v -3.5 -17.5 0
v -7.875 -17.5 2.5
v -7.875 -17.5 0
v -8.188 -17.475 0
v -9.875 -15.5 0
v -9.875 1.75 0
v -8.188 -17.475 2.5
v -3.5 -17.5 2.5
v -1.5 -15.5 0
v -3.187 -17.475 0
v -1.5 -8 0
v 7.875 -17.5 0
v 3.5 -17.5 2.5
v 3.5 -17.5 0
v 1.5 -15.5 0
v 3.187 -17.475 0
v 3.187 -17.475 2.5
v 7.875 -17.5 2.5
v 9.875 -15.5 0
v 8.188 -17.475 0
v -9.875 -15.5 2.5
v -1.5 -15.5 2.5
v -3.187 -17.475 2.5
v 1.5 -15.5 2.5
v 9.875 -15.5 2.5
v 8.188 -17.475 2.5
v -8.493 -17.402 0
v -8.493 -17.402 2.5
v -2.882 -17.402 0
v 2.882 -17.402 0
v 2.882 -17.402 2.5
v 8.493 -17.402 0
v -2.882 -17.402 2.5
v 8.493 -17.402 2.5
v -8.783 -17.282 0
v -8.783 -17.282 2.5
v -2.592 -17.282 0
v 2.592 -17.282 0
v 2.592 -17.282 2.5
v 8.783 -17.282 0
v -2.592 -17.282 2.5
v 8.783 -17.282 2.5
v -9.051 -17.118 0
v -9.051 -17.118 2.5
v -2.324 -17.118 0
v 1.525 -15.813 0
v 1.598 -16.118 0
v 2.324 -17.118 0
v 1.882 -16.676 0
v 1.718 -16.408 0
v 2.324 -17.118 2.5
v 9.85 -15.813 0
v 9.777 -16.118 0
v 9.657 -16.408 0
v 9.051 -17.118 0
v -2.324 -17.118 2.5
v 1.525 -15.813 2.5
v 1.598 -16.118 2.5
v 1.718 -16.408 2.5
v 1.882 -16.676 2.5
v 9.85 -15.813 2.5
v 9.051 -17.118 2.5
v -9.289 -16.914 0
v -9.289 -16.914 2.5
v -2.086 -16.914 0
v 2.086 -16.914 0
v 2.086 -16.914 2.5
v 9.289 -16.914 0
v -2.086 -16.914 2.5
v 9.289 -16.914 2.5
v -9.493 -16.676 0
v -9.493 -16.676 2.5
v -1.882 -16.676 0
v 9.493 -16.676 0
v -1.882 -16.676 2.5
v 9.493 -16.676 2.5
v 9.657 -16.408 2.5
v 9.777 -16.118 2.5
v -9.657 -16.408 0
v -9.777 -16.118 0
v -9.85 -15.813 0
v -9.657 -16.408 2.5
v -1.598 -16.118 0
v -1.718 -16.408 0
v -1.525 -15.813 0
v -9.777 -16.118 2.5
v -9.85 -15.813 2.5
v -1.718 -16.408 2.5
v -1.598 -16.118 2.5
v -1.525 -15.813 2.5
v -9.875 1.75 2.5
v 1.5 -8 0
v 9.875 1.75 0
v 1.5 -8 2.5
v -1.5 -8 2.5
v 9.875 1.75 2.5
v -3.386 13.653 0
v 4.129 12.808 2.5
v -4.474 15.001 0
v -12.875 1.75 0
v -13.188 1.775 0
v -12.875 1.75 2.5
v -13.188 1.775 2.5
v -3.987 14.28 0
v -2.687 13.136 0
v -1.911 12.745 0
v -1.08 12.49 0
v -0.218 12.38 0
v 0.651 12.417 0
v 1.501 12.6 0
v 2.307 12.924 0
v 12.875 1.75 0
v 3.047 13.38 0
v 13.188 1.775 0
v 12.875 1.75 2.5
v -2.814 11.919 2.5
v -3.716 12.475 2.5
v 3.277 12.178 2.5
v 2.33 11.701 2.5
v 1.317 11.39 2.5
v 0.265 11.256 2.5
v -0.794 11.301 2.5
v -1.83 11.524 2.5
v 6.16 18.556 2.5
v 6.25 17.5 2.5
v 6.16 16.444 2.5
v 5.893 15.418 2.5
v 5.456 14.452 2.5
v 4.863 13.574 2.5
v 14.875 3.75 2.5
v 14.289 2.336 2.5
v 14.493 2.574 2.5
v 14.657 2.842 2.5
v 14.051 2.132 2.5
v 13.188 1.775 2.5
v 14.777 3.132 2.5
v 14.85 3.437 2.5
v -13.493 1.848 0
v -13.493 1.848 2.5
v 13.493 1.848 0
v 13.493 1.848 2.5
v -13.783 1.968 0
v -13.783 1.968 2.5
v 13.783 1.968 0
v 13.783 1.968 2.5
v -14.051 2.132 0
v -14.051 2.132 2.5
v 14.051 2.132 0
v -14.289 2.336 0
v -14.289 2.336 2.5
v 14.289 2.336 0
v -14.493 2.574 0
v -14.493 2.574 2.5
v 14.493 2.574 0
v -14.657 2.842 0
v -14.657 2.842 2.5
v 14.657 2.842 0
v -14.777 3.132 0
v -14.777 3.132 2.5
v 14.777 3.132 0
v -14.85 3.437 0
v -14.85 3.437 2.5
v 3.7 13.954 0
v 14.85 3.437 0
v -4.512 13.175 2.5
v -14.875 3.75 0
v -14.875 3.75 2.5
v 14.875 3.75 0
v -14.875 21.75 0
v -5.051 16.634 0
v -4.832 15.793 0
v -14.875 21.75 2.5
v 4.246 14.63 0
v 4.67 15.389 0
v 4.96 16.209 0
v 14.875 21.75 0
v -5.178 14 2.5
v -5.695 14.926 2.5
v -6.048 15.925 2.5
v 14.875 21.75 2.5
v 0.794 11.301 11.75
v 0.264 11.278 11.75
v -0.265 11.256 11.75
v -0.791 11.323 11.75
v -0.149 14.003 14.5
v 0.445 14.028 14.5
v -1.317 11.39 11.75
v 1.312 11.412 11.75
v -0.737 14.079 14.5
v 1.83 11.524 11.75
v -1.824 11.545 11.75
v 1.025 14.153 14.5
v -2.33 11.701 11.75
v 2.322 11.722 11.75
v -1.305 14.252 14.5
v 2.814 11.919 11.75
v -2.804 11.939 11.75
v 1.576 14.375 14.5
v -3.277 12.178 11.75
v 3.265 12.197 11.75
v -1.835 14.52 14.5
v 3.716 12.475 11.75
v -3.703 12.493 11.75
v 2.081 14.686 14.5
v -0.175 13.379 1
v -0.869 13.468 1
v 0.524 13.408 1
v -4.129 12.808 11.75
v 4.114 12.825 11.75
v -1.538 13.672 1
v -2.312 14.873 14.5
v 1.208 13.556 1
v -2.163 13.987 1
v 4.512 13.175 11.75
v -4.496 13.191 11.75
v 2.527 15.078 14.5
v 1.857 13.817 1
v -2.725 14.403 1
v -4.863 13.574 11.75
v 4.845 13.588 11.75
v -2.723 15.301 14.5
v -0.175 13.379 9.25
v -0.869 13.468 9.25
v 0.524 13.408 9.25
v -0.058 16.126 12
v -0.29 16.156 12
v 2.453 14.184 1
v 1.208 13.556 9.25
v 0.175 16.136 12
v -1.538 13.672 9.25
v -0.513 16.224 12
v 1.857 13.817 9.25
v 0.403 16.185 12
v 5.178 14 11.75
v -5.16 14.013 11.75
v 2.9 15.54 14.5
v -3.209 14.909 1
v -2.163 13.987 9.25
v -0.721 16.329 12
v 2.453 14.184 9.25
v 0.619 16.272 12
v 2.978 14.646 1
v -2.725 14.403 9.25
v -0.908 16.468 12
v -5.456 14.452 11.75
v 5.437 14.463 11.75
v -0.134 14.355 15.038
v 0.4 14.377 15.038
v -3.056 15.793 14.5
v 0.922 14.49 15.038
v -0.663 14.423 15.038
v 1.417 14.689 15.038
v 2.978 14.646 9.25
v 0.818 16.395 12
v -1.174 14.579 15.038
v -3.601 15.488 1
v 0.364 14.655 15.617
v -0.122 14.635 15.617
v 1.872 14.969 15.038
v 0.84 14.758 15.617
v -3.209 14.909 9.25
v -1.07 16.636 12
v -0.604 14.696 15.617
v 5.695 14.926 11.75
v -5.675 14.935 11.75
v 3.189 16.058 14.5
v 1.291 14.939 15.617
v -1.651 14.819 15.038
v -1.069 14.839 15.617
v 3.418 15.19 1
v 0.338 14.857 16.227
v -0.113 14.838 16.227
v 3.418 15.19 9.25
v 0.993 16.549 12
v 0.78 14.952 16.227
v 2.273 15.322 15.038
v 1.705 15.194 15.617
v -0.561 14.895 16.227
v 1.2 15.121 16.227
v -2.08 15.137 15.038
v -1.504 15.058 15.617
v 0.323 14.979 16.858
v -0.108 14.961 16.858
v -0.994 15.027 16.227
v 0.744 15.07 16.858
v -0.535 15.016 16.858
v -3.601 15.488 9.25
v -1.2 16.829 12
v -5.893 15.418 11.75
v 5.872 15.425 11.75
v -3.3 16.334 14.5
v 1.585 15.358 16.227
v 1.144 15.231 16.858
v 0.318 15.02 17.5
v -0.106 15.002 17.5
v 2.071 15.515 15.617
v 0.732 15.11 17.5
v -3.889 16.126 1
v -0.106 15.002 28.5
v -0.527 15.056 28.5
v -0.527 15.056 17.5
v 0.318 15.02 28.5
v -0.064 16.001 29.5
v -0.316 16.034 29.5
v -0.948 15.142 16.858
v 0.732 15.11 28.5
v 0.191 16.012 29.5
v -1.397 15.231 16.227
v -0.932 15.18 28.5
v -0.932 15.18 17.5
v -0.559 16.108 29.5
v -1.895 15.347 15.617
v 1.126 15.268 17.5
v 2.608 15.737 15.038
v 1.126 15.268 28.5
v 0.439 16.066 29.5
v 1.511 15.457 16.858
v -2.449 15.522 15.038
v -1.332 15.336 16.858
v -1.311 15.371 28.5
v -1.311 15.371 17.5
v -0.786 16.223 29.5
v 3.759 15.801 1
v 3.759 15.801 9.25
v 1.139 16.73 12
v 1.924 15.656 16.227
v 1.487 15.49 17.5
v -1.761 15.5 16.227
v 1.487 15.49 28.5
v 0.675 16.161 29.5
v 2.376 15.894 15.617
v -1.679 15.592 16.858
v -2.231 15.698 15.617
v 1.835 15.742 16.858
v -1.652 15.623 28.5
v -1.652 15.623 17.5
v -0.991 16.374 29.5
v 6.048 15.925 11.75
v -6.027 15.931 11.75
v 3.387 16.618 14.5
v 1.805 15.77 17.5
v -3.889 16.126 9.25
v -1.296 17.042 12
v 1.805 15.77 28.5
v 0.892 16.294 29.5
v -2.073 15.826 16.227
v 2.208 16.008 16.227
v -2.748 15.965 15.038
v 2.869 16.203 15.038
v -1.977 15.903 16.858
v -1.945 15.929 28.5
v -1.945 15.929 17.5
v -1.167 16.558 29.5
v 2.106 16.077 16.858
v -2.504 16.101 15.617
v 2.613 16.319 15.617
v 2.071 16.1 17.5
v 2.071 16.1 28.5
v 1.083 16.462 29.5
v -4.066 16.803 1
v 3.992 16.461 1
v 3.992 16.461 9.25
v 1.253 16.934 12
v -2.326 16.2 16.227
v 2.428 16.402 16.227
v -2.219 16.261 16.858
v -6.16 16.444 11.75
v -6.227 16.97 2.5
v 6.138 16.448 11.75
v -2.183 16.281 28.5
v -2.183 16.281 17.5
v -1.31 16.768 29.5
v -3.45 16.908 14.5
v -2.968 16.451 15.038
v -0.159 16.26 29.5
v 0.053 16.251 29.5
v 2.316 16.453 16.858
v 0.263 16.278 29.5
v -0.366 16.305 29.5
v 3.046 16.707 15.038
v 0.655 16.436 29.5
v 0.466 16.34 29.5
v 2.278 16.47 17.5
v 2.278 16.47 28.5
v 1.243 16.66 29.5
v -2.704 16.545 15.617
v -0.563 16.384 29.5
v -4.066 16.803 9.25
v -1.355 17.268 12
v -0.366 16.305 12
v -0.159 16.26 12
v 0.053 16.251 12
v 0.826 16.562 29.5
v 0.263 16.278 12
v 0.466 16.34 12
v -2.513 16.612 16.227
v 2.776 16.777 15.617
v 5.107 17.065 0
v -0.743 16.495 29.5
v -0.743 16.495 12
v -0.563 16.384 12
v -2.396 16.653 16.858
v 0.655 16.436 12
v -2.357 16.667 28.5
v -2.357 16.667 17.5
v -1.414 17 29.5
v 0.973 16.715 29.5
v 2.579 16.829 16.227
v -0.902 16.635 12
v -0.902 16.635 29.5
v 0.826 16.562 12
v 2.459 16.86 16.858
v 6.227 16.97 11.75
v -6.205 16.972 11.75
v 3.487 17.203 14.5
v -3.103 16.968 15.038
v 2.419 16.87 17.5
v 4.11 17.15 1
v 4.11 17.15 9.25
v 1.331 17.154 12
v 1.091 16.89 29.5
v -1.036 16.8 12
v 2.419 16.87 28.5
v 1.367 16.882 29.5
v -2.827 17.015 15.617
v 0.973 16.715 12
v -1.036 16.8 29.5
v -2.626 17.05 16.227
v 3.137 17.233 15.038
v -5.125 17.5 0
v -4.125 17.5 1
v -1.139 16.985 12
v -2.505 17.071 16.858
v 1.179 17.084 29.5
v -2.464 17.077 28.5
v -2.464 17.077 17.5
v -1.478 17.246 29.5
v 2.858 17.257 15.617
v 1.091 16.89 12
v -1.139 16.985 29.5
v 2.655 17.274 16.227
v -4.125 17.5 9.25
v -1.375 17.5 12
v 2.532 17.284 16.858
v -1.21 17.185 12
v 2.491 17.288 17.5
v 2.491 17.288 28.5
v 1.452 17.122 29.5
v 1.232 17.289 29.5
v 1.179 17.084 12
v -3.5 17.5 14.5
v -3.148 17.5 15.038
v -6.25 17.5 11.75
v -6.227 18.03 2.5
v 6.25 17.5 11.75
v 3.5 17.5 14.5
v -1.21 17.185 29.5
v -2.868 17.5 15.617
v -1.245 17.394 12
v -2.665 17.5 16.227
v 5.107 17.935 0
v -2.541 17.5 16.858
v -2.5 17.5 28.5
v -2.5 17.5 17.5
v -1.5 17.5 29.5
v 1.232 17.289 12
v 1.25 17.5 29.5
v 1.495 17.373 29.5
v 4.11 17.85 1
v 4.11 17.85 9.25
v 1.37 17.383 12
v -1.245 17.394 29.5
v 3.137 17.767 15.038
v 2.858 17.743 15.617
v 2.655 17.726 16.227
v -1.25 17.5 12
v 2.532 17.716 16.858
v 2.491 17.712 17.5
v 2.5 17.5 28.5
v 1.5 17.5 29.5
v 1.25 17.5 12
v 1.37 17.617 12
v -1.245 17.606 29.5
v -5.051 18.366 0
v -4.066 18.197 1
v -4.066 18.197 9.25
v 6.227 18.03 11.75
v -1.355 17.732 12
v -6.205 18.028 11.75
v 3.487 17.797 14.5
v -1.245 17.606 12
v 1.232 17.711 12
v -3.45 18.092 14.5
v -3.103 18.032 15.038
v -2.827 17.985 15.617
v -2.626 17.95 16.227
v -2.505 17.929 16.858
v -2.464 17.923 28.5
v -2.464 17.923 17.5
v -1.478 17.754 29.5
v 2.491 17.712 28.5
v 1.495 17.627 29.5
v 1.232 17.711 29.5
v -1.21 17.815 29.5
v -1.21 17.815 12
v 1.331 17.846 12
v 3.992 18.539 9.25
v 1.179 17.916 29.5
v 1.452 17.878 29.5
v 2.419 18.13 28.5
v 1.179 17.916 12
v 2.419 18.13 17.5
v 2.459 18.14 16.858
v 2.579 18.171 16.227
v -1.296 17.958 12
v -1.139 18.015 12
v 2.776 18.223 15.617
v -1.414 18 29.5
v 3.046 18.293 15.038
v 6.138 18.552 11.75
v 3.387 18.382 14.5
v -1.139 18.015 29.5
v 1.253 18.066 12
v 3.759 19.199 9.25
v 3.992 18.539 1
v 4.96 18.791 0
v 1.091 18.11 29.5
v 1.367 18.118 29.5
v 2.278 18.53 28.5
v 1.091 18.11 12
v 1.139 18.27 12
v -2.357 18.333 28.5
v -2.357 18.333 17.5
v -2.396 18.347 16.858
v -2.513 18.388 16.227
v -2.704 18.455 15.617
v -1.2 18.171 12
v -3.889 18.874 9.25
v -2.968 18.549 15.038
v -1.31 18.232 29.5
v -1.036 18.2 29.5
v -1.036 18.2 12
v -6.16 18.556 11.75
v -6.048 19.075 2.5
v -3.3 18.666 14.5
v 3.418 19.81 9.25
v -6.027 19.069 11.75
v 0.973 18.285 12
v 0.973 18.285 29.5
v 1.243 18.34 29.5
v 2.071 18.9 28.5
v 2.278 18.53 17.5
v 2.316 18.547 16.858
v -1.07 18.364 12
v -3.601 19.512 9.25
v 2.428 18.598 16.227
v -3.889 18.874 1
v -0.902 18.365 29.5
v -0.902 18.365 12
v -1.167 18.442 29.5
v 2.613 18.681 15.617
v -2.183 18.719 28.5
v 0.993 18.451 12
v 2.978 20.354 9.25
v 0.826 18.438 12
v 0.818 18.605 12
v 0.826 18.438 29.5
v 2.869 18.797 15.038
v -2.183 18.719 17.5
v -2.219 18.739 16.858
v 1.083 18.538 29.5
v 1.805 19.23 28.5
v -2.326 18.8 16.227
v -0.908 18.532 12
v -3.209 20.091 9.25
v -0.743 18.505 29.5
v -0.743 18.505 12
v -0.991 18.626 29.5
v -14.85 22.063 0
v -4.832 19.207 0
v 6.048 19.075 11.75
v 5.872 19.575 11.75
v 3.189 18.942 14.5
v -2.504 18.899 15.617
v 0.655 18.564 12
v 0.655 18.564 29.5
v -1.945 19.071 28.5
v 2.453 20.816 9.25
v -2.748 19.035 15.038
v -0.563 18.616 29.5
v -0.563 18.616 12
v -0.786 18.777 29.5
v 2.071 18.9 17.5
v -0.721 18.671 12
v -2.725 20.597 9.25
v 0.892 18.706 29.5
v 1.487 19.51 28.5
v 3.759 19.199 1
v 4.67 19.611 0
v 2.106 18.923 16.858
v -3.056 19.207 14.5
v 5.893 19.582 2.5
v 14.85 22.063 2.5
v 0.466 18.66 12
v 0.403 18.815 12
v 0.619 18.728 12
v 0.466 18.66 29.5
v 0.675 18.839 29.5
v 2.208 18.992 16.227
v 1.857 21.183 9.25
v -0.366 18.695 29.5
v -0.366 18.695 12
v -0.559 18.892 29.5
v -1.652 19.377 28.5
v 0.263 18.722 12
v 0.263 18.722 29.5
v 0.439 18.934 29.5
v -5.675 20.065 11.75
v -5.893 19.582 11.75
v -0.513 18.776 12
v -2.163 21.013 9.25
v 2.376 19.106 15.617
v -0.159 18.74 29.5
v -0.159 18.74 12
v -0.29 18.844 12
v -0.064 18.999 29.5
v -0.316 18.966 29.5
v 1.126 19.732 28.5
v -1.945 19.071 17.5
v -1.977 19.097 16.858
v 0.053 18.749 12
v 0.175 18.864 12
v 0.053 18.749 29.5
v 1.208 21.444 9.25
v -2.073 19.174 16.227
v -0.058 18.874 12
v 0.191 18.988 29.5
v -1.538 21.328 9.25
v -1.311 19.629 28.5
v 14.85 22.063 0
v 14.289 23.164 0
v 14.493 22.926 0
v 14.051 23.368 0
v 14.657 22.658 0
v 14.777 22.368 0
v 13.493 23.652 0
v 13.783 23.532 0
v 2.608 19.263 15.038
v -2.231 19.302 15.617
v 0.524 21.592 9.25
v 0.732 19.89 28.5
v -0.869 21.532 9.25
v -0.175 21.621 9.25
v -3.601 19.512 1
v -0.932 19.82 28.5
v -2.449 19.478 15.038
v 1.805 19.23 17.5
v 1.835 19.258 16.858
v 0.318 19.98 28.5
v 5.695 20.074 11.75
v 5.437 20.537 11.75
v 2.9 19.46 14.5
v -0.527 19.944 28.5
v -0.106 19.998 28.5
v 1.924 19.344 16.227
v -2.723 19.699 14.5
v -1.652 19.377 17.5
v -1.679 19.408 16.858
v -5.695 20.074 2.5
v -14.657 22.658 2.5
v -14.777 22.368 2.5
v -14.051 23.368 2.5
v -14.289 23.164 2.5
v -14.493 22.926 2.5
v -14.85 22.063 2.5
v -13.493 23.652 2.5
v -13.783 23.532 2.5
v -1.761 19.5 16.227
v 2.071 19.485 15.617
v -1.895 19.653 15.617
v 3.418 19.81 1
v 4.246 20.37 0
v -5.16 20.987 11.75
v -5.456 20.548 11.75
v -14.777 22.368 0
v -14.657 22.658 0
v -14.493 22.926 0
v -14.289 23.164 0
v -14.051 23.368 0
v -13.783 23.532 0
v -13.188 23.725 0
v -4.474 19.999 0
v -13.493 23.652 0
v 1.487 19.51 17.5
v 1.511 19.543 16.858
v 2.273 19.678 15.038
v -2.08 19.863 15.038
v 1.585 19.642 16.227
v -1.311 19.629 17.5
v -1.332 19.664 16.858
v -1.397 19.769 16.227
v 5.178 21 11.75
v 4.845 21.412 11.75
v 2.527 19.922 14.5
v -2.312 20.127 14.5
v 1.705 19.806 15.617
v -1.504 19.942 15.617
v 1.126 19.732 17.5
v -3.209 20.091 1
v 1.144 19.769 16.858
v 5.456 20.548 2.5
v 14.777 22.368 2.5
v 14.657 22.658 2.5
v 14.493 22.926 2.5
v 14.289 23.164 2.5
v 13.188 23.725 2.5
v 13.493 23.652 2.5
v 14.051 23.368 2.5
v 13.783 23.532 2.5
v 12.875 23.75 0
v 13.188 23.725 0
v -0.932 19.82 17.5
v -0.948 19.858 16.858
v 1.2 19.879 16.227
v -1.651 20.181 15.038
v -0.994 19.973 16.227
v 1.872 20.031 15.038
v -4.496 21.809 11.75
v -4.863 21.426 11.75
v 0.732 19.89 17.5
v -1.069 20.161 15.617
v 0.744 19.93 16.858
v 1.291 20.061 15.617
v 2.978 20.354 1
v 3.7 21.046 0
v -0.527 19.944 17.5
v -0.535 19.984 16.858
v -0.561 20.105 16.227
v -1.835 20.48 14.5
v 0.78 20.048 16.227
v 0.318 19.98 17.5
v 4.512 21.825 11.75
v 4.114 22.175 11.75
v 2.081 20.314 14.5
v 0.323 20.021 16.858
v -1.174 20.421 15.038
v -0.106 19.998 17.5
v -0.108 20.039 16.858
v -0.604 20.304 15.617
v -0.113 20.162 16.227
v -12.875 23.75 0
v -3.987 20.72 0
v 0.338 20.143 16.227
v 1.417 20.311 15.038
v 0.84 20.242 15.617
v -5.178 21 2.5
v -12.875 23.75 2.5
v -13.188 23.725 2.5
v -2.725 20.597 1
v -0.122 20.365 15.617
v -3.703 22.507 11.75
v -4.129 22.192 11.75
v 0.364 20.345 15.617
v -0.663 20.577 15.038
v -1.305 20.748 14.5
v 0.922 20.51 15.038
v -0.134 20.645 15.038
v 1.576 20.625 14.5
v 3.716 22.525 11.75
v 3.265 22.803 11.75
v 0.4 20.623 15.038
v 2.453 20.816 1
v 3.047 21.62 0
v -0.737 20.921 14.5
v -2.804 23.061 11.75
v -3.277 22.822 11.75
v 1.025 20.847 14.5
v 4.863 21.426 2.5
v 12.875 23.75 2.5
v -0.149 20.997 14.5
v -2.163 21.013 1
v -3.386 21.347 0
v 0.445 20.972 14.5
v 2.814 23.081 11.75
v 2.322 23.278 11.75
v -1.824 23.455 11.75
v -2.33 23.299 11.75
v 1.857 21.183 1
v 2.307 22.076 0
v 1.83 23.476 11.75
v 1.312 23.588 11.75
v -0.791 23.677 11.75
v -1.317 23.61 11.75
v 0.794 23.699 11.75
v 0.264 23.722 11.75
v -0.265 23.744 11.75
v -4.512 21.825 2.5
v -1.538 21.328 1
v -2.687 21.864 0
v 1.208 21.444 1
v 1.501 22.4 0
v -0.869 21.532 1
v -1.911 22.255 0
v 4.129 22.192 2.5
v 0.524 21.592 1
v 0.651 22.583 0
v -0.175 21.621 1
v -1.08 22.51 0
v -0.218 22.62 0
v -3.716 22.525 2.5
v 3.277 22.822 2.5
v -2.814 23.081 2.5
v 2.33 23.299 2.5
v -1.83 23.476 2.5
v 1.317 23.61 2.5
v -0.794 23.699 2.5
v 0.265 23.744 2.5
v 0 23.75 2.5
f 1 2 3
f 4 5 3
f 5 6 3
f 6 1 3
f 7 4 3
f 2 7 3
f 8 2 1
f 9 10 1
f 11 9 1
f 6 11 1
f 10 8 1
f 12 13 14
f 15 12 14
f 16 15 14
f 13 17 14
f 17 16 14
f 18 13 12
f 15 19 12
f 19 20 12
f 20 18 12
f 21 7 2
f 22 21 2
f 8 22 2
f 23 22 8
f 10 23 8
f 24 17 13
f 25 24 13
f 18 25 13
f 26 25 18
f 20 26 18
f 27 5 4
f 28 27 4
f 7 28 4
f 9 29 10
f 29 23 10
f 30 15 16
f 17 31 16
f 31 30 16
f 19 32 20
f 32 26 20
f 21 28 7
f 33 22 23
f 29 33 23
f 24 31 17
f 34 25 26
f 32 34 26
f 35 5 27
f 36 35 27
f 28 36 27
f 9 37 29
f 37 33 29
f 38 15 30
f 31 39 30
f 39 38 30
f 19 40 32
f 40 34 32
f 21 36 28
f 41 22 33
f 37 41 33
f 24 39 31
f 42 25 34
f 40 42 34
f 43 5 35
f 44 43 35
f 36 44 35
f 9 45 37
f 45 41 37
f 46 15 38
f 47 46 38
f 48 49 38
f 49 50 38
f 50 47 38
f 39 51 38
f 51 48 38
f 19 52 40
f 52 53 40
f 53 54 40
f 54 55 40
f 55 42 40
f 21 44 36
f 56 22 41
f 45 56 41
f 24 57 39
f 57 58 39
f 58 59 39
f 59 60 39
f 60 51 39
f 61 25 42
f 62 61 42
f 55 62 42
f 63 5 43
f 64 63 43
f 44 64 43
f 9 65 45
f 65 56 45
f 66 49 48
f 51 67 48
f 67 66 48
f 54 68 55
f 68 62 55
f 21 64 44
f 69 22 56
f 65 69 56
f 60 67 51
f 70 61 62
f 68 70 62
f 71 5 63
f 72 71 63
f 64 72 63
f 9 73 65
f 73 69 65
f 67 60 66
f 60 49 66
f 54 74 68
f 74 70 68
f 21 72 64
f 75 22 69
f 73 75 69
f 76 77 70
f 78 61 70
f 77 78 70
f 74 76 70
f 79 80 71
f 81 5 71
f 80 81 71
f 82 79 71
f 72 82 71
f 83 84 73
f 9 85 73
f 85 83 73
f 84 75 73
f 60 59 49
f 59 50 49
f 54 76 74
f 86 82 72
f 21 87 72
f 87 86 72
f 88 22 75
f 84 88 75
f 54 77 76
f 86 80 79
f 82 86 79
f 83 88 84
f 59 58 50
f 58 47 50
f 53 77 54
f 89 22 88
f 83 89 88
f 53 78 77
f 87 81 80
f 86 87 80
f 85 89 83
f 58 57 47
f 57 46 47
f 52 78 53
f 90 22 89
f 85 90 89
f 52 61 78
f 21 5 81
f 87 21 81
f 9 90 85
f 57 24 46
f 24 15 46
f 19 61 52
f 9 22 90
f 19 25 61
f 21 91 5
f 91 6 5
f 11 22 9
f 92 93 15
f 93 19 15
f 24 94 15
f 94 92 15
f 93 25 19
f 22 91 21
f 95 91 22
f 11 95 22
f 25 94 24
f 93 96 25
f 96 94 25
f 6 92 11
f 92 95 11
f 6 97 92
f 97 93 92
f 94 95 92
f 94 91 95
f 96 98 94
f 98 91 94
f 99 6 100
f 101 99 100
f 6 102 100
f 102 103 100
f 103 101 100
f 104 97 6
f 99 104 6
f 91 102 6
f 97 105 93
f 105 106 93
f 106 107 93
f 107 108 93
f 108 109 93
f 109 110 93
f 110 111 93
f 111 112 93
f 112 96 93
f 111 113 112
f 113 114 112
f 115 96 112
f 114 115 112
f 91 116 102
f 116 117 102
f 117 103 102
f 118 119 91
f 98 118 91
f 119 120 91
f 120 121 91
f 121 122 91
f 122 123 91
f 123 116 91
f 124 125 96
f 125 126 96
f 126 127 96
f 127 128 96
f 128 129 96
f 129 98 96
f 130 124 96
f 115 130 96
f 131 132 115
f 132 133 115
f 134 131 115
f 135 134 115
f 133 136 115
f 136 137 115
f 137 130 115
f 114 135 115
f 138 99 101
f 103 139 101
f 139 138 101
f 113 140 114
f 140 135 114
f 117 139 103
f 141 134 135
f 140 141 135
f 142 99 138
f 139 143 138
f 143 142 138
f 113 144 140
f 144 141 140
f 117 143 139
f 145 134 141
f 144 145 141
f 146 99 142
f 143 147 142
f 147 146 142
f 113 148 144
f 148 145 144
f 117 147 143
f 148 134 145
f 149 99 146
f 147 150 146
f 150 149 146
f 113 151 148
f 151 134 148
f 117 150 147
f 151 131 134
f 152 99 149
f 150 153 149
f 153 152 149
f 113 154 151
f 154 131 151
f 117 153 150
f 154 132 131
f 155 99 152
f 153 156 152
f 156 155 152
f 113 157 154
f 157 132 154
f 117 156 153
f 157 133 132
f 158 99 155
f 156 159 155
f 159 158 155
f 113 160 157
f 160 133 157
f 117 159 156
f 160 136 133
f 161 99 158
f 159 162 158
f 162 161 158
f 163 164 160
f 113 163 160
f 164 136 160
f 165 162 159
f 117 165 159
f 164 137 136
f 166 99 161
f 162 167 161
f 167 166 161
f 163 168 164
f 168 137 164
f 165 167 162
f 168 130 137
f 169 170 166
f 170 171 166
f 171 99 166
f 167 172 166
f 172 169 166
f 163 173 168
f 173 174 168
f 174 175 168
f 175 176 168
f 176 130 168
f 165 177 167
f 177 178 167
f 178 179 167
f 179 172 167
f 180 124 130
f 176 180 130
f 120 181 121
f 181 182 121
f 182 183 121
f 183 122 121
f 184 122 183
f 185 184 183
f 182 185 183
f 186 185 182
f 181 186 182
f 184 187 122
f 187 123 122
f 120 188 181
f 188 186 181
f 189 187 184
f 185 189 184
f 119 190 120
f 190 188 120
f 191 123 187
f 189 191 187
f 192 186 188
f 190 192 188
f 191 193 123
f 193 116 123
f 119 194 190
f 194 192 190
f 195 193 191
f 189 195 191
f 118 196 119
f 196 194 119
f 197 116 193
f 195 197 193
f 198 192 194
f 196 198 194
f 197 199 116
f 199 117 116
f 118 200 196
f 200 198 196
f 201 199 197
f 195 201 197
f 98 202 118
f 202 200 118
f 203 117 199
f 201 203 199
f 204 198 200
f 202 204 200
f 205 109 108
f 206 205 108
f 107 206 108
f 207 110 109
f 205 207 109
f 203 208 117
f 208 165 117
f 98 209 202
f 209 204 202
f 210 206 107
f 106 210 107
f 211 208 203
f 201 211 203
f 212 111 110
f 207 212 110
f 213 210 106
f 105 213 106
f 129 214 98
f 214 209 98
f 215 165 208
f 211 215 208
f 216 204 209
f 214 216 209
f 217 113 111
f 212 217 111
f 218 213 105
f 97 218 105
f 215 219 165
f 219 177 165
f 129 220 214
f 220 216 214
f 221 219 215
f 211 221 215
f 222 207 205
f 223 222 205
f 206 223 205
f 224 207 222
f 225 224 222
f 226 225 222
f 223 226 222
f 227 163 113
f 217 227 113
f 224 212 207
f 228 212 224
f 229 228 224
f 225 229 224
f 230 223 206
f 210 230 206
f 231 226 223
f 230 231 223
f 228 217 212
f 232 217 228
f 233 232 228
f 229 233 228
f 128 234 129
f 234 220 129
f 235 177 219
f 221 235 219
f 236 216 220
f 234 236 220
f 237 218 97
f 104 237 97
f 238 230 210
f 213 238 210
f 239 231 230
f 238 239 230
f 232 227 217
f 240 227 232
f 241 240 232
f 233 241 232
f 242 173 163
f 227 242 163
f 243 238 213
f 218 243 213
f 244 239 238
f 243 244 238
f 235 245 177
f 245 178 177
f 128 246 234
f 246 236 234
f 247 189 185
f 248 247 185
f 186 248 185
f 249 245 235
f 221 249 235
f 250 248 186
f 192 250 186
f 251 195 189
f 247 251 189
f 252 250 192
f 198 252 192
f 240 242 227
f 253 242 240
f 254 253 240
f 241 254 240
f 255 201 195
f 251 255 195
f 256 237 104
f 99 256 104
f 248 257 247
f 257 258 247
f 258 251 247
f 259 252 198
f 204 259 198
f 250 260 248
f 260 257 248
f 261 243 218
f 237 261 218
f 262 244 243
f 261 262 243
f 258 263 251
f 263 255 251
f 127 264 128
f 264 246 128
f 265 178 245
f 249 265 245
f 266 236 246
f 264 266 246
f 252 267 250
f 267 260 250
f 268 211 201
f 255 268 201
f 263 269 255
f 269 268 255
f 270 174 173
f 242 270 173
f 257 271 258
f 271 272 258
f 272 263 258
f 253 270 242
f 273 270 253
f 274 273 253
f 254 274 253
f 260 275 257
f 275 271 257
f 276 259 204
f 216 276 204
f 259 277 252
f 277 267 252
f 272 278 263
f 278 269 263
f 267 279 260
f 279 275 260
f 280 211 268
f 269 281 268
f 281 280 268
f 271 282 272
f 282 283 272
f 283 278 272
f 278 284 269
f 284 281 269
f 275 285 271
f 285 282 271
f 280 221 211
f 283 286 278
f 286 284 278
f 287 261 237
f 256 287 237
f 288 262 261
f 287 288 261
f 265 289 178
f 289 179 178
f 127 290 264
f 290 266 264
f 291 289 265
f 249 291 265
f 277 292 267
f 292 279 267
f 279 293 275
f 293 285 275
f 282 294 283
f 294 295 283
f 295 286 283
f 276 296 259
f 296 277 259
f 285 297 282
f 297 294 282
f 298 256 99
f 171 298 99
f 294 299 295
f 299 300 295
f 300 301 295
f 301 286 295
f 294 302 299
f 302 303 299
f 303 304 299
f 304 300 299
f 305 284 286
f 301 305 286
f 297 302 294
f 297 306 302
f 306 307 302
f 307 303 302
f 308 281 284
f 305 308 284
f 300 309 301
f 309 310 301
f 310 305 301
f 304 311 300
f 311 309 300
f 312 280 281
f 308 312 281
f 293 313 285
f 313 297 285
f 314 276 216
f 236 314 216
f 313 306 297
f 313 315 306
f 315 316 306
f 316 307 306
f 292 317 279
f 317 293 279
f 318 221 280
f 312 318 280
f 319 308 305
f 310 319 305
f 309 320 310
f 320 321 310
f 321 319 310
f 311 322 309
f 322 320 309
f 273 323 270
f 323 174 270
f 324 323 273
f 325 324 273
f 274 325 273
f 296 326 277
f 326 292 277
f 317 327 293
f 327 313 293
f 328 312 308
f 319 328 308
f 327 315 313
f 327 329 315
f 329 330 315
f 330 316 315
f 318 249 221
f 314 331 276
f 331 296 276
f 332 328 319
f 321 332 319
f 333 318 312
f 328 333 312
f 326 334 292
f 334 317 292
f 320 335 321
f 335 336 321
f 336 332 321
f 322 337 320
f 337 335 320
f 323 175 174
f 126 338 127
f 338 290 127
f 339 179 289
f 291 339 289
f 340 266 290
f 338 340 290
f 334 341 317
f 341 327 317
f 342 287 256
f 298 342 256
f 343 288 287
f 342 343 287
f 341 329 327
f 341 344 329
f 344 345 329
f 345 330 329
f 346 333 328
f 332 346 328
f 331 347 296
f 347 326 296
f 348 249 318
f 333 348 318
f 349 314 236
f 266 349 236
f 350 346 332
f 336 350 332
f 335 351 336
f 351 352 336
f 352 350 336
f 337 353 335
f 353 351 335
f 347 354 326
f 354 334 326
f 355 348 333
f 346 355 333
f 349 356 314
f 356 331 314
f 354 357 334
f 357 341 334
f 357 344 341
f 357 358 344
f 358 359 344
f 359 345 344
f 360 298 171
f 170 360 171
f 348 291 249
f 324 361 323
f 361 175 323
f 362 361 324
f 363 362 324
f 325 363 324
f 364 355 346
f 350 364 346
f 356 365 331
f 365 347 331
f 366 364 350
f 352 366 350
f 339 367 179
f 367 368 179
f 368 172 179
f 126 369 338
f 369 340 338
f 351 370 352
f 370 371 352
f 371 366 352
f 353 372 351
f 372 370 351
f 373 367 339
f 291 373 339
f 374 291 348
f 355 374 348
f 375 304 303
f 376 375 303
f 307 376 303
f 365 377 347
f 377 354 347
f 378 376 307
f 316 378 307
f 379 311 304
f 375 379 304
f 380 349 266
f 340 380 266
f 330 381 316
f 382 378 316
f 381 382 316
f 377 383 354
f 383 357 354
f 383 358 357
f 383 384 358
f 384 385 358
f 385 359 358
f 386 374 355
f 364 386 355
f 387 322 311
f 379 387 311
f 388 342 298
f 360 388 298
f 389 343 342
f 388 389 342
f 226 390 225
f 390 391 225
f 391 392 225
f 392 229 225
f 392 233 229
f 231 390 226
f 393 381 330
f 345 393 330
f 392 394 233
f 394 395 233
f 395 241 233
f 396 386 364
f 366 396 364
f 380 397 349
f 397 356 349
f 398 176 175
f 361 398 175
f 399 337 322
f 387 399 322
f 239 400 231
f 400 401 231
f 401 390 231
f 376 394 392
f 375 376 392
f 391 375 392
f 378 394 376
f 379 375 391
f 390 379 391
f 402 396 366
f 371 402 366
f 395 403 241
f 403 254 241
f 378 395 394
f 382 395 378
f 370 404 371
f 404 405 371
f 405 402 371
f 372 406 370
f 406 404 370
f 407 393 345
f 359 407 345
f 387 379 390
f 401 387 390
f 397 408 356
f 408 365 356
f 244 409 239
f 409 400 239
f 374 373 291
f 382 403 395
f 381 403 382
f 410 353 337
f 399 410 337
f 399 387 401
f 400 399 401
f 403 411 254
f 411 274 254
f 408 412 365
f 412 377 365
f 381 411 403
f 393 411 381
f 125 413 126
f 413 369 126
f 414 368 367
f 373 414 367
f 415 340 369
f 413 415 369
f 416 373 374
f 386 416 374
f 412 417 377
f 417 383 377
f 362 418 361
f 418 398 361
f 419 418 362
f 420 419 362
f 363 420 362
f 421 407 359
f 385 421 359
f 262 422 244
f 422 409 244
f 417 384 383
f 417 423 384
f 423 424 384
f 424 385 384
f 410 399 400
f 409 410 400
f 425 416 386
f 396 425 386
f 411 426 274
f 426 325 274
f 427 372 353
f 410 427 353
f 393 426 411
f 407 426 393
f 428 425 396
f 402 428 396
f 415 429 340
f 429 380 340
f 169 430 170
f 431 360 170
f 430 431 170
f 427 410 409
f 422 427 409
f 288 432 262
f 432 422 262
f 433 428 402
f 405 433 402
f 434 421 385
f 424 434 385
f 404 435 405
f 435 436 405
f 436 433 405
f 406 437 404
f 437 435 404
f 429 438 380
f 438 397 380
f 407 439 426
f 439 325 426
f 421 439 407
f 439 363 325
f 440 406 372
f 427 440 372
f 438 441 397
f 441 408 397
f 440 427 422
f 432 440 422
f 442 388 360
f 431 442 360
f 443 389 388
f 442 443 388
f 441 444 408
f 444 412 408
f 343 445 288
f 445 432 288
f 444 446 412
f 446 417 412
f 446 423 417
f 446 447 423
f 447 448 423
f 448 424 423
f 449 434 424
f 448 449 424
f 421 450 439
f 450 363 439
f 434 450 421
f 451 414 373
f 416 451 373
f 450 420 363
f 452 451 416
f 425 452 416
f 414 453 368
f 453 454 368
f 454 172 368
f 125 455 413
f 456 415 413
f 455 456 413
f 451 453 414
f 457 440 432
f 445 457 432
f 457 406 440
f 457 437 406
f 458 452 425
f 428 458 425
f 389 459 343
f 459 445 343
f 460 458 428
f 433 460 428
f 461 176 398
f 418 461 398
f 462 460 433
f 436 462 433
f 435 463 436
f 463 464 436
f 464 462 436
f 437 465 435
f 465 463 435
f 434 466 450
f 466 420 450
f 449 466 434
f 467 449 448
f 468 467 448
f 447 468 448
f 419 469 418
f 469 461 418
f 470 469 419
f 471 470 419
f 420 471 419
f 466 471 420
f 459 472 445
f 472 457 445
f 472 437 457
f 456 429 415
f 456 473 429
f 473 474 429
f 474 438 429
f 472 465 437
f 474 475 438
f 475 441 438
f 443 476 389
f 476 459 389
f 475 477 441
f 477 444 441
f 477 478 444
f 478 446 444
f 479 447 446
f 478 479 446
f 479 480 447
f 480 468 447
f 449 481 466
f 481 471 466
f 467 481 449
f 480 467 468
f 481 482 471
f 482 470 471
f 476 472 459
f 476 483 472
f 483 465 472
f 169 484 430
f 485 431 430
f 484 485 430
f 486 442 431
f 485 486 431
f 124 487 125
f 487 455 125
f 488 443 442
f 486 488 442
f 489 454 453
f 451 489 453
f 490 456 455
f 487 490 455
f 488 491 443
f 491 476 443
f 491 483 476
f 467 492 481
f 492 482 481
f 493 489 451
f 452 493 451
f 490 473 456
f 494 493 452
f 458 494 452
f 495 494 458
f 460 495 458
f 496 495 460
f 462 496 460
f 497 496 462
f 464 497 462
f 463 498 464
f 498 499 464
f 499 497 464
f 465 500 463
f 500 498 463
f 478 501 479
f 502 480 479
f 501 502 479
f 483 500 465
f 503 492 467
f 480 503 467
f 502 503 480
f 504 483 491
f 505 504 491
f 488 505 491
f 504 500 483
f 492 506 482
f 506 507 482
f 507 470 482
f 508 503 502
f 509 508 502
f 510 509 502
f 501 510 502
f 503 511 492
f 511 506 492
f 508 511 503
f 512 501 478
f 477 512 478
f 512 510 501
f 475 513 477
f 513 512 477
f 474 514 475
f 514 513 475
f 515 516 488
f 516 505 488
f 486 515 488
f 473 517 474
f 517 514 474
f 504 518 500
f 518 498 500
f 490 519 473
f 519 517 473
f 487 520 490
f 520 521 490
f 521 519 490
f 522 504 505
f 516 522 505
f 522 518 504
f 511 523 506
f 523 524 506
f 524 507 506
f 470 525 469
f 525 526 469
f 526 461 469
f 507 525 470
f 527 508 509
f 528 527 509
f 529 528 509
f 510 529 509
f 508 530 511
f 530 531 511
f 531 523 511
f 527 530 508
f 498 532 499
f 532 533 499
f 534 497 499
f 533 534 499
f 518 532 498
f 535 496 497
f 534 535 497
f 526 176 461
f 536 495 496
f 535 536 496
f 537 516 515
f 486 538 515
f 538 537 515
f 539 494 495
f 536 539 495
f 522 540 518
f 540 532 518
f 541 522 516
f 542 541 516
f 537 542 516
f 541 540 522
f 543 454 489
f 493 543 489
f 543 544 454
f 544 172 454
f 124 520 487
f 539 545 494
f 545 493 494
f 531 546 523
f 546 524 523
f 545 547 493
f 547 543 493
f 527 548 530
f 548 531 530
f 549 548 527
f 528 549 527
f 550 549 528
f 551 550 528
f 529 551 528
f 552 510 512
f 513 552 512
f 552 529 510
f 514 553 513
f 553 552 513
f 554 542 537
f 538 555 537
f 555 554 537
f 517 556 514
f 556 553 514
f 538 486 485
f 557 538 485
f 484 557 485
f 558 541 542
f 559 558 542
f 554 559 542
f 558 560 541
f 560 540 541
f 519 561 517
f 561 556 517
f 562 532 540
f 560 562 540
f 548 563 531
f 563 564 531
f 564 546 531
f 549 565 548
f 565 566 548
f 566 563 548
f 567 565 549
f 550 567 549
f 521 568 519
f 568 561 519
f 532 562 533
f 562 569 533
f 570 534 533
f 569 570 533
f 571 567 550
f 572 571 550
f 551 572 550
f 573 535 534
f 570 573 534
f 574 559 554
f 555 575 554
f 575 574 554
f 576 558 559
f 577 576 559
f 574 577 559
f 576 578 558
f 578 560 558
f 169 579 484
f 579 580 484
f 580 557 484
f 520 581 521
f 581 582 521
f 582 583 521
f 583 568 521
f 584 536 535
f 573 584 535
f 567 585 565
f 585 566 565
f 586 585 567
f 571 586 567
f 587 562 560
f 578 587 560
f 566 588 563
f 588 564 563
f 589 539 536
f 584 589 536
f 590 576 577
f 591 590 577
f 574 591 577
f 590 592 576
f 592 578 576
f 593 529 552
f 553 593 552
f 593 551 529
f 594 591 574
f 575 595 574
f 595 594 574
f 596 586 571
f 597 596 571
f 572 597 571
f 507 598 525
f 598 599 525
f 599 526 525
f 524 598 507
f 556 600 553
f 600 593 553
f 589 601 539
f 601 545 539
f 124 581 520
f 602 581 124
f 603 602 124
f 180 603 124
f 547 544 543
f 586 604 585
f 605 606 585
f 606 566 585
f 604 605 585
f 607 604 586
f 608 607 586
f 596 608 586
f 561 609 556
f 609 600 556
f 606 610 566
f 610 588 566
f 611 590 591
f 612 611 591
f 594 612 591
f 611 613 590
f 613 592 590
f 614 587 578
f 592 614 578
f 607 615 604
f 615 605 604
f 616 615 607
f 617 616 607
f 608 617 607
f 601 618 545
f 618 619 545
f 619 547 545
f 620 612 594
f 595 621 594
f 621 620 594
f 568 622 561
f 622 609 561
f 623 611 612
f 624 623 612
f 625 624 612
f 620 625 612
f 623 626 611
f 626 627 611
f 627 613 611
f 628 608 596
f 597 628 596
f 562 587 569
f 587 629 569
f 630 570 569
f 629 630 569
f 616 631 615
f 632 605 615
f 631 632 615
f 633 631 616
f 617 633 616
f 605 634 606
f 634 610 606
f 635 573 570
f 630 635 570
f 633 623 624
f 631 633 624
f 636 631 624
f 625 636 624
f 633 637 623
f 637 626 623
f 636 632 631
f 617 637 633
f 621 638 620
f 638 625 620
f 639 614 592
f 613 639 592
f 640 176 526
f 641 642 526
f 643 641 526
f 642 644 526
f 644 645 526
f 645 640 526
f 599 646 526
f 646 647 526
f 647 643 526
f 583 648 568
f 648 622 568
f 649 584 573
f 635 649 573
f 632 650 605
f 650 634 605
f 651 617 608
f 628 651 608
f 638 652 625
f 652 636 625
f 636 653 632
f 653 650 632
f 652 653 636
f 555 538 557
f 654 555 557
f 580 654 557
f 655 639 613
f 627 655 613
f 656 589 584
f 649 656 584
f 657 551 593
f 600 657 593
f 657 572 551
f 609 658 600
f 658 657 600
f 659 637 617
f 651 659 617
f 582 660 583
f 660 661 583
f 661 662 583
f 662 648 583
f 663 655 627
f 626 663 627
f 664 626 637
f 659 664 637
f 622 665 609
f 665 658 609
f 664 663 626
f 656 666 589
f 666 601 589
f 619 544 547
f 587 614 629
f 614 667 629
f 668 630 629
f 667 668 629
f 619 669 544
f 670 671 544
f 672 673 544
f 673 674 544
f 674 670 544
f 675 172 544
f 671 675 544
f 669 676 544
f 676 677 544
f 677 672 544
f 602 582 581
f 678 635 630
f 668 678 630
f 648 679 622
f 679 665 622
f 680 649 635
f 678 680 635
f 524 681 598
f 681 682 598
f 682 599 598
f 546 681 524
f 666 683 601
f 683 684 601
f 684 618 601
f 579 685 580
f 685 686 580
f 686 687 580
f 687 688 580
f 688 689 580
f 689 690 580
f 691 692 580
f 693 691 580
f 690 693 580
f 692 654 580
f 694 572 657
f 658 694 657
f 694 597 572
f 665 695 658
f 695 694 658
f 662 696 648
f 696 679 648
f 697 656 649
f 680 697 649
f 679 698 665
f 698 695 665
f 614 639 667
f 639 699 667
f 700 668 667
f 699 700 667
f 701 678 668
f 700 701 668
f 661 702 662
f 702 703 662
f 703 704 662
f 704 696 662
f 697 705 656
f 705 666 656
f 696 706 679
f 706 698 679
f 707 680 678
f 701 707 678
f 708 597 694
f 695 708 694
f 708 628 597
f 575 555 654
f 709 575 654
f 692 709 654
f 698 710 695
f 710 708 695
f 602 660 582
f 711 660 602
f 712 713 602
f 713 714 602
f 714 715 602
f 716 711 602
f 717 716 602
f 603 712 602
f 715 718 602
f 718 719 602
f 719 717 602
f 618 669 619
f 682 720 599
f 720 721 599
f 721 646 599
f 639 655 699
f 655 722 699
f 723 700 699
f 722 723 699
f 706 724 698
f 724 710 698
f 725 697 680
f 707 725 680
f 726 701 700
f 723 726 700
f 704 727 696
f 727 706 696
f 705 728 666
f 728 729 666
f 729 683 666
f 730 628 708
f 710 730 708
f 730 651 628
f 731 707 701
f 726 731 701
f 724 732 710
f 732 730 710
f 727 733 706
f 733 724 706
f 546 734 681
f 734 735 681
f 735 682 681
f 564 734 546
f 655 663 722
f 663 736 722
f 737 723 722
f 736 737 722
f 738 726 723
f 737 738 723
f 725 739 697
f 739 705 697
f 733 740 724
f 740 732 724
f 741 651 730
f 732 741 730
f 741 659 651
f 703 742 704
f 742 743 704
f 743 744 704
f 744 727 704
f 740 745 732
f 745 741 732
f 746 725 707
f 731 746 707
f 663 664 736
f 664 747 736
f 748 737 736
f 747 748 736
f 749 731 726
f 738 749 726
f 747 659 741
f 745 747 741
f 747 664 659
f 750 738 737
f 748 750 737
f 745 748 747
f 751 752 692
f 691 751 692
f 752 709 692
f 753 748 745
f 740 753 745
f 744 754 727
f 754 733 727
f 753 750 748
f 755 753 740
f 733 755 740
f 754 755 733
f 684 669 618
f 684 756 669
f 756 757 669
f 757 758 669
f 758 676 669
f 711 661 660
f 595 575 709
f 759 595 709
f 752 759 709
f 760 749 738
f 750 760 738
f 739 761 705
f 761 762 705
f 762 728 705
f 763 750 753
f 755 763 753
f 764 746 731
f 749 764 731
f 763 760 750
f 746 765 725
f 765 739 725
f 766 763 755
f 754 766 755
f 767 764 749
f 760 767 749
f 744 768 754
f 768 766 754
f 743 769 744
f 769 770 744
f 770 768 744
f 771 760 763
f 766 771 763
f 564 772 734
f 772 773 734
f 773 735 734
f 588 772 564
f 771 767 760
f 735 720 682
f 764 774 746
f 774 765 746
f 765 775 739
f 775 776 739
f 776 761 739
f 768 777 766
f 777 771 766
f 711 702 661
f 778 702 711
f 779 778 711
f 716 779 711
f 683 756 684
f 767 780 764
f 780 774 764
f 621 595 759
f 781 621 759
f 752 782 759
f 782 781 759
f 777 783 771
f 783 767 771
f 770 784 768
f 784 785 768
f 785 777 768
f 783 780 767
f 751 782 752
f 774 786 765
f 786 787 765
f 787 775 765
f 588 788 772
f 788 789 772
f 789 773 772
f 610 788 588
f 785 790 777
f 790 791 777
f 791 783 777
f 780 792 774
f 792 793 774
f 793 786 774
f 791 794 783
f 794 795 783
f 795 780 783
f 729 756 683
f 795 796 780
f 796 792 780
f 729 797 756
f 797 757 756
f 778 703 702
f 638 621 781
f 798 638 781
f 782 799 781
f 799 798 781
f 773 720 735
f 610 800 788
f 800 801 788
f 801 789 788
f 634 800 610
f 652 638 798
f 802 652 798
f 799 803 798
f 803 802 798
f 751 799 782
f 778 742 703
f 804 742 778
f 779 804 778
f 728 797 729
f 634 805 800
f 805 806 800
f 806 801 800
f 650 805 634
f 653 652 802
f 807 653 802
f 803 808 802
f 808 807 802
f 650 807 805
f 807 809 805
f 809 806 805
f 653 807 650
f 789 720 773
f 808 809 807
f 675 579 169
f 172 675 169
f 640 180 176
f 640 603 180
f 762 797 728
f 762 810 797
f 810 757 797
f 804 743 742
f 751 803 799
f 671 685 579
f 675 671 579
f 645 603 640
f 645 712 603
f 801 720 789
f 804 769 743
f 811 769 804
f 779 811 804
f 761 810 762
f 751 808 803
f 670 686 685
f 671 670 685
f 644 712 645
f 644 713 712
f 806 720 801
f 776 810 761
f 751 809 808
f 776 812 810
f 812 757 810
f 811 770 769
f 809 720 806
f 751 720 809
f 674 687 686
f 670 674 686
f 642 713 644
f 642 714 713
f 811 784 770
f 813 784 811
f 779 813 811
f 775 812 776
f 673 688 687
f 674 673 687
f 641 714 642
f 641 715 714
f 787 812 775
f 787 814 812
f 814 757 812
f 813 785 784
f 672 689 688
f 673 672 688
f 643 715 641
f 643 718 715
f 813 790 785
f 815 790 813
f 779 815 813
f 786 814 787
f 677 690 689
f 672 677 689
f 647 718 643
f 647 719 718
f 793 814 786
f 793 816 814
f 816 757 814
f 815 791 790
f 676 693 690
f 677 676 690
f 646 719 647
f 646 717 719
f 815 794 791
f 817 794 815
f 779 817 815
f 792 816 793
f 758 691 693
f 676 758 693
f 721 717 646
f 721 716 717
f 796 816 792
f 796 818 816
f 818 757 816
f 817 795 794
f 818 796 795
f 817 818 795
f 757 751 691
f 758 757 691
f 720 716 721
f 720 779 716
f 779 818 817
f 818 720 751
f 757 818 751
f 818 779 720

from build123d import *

# Parameters (mm, degrees)
CROQUIS1_W                          = 19.75
CROQUIS1_H                          = 35
SALIENTE_EXTRUIR1_DEPTH             = 2.5
CROQUIS2_W                          = 3
CROQUIS2_H                          = 9.5
CORTAR_EXTRUIR1_DEPTH               = 21.24884256
CROQUIS3_W                          = 29.75
CROQUIS3_H                          = 15.75
SALIENTE_EXTRUIR2_DEPTH             = 2.5
CROQUIS7_R                          = 6.25
SALIENTE_EXTRUIR4_DEPTH             = 12
SALIENTE_EXTRUIR4_DIRECTION_2_REACH = 25.103
CROQUIS4_R                          = 2.5
SALIENTE_EXTRUIR3_DEPTH             = 15
CROQUIS5_R                          = 1.25
CORTAR_EXTRUIR2_DEPTH               = 41.688796062
CROQUIS10_R                         = 4.125
CORTAR_EXTRUIR3_DEPTH               = 12
CHAFL_N1_SIZE                       = 1
REDONDEO1_R                         = 2
CHAFL_N2_SIZE                       = 2.75
REDONDEO2_R                         = 5
SALIENTE_EXTRUIR5_DEPTH             = 2.5


with BuildPart() as part:
    # Croquis1 → Saliente-Extruir1 (new body)
    with BuildSketch(Plane.XY):
        Rectangle(CROQUIS1_W, CROQUIS1_H)
    extrude(amount=SALIENTE_EXTRUIR1_DEPTH)

    # Croquis2 → Cortar-Extruir1 (cut, through all)
    with BuildSketch(Plane.XY.offset(2.5)):
        with Locations((0, -12.75)):
            Rectangle(CROQUIS2_W, CROQUIS2_H)
    extrude(amount=-CORTAR_EXTRUIR1_DEPTH, mode=Mode.SUBTRACT)

    # Croquis3 → Saliente-Extruir2 (add, through all)
    with BuildSketch(Plane.XY.offset(2.5)):
        with Locations((0, 9.625)):
            Rectangle(CROQUIS3_W, CROQUIS3_H)
    extrude(amount=-SALIENTE_EXTRUIR2_DEPTH)

    # Croquis7 → Saliente-Extruir4 (add)
    with BuildSketch(Plane.XY.offset(2.5)):
        with Locations((0, 17.5)):
            Circle(CROQUIS7_R)
    extrude(amount=SALIENTE_EXTRUIR4_DEPTH)

    # Saliente-Extruir4 direction 2: up to this face of the body (flat: up to its plane)
    saliente_extruir4_direction_2_end = Plane(part.part.faces().sort_by_distance((0, 2.291145992, 0))[0])
    # Croquis7 → Saliente-Extruir4 direction 2 (add, up to the picked face)
    with BuildSketch(Plane.XY.offset(2.5), mode=Mode.PRIVATE) as saliente_extruir4_direction_2_sk1:
        with Locations((0, 17.5)):
            Circle(CROQUIS7_R)
    saliente_extruir4_direction_2_tool1 = split(extrude(saliente_extruir4_direction_2_sk1.sketch, amount=-SALIENTE_EXTRUIR4_DIRECTION_2_REACH, mode=Mode.PRIVATE), bisect_by=saliente_extruir4_direction_2_end, keep=Keep.BOTH, mode=Mode.PRIVATE)
    add(saliente_extruir4_direction_2_tool1.solids().sort_by(Axis((0, 17.5, 2.5), (0, 0, -1)))[0])

    # Croquis4 → Saliente-Extruir3 (add)
    with BuildSketch(Plane.XY.offset(14.5)):
        with Locations((0, 17.5)):
            Circle(CROQUIS4_R)
    extrude(amount=SALIENTE_EXTRUIR3_DEPTH)

    # Croquis5 → Cortar-Extruir2 (cut, through all)
    with BuildSketch(Plane.XY.offset(29.5)):
        with Locations((0, 17.5)):
            Circle(CROQUIS5_R)
    extrude(amount=-CORTAR_EXTRUIR2_DEPTH, mode=Mode.SUBTRACT)

    # Croquis10 → Cortar-Extruir3 (cut)
    with BuildSketch(Plane(origin=(0, 0, 0), x_dir=(-1, 0, 0), z_dir=(0, 0, -1))):
        with Locations((0, 17.5)):
            Circle(CROQUIS10_R)
    extrude(amount=-CORTAR_EXTRUIR3_DEPTH, mode=Mode.SUBTRACT)

    # Chaflán1
    chafl_n1_edges = [part.edges().sort_by_distance(p)[0] for p in [
        (-2.5, 17.5, 29.5),
        (4.125, 17.5, 0),
    ]]
    chamfer(chafl_n1_edges, length=CHAFL_N1_SIZE)

    # Redondeo1
    redondeo1_edges = [part.edges().sort_by_distance(p)[0] for p in [
        (1.5, -17.5, 1.25),
        (-1.5, -17.5, 1.25),
        (-14.875, 17.5, 1.25),
        (14.875, 1.75, 1.25),
        (-14.875, 1.75, 1.25),
        (14.875, 17.5, 1.25),
        (9.875, -17.5, 1.25),
        (-9.875, -17.5, 1.25),
    ]]
    fillet(redondeo1_edges, radius=REDONDEO1_R)

    # Chaflán2
    chafl_n2_edges = [part.edges().sort_by_distance(p)[0] for p in [
        (-6.25, 17.5, 14.5),
        (4.125, 17.5, 12),
    ]]
    chamfer(chafl_n2_edges, length=CHAFL_N2_SIZE)

    # Redondeo2
    # the kernel refuses this fillet: 5 mm, written as the material it adds along each edge
    with BuildSketch(Plane(origin=(0, 17.5, 14.5), x_dir=(1, 0, 0), z_dir=(0, -1, 0))) as redondeo2_piece_1:
        with BuildLine():
            CenterArc((7.5, 3), REDONDEO2_R, 180, 36.869897646)
            Line((2.5, 3), (2.4, 3))
            Line((2.4, 3), (2.4, 0))
            Line((2.4, 0), (2.5, -0.1))
            ThreePointArc((2.5, -0.1), (3, -0.1), (3.42, -0.06))
            Line((3.42, -0.06), (3.5, 0))
        make_face()
    revolve(axis=Axis((0, 17.5, 14.5), (0, 0, 1)))

    # Croquis11 → Saliente-Extruir5 (add)
    with BuildSketch(Plane(origin=(0, 0, 0), x_dir=(-1, 0, 0), z_dir=(0, 0, -1))):
        with BuildLine():
            ThreePointArc((-6.25, 17.5), (-4.419417386, 21.919417379), (-1e-08, 23.75))
            Line((-1e-08, 23.75), (-12.875, 23.75))
            ThreePointArc((-12.875, 23.75), (-14.289213562, 23.164213562), (-14.875, 21.75))
            Line((-14.875, 21.75), (-14.875, 15.5))
            ThreePointArc((-14.875, 15.5), (-14.289213562, 16.914213562), (-12.875, 17.5))
            Line((-12.875, 17.5), (-6.25, 17.5))
        make_face()
        with BuildLine():
            ThreePointArc((-1e-08, 23.75), (4.419417379, 21.919417386), (6.25, 17.5))
            Line((6.25, 17.5), (12.875, 17.5))
            ThreePointArc((12.875, 17.5), (14.289213562, 16.914213562), (14.875, 15.5))
            Line((14.875, 15.5), (14.875, 21.75))
            ThreePointArc((14.875, 21.75), (14.289213562, 23.164213562), (12.875, 23.75))
            Line((12.875, 23.75), (-1e-08, 23.75))
        make_face()
    extrude(amount=-SALIENTE_EXTRUIR5_DEPTH)


solid = part.part
